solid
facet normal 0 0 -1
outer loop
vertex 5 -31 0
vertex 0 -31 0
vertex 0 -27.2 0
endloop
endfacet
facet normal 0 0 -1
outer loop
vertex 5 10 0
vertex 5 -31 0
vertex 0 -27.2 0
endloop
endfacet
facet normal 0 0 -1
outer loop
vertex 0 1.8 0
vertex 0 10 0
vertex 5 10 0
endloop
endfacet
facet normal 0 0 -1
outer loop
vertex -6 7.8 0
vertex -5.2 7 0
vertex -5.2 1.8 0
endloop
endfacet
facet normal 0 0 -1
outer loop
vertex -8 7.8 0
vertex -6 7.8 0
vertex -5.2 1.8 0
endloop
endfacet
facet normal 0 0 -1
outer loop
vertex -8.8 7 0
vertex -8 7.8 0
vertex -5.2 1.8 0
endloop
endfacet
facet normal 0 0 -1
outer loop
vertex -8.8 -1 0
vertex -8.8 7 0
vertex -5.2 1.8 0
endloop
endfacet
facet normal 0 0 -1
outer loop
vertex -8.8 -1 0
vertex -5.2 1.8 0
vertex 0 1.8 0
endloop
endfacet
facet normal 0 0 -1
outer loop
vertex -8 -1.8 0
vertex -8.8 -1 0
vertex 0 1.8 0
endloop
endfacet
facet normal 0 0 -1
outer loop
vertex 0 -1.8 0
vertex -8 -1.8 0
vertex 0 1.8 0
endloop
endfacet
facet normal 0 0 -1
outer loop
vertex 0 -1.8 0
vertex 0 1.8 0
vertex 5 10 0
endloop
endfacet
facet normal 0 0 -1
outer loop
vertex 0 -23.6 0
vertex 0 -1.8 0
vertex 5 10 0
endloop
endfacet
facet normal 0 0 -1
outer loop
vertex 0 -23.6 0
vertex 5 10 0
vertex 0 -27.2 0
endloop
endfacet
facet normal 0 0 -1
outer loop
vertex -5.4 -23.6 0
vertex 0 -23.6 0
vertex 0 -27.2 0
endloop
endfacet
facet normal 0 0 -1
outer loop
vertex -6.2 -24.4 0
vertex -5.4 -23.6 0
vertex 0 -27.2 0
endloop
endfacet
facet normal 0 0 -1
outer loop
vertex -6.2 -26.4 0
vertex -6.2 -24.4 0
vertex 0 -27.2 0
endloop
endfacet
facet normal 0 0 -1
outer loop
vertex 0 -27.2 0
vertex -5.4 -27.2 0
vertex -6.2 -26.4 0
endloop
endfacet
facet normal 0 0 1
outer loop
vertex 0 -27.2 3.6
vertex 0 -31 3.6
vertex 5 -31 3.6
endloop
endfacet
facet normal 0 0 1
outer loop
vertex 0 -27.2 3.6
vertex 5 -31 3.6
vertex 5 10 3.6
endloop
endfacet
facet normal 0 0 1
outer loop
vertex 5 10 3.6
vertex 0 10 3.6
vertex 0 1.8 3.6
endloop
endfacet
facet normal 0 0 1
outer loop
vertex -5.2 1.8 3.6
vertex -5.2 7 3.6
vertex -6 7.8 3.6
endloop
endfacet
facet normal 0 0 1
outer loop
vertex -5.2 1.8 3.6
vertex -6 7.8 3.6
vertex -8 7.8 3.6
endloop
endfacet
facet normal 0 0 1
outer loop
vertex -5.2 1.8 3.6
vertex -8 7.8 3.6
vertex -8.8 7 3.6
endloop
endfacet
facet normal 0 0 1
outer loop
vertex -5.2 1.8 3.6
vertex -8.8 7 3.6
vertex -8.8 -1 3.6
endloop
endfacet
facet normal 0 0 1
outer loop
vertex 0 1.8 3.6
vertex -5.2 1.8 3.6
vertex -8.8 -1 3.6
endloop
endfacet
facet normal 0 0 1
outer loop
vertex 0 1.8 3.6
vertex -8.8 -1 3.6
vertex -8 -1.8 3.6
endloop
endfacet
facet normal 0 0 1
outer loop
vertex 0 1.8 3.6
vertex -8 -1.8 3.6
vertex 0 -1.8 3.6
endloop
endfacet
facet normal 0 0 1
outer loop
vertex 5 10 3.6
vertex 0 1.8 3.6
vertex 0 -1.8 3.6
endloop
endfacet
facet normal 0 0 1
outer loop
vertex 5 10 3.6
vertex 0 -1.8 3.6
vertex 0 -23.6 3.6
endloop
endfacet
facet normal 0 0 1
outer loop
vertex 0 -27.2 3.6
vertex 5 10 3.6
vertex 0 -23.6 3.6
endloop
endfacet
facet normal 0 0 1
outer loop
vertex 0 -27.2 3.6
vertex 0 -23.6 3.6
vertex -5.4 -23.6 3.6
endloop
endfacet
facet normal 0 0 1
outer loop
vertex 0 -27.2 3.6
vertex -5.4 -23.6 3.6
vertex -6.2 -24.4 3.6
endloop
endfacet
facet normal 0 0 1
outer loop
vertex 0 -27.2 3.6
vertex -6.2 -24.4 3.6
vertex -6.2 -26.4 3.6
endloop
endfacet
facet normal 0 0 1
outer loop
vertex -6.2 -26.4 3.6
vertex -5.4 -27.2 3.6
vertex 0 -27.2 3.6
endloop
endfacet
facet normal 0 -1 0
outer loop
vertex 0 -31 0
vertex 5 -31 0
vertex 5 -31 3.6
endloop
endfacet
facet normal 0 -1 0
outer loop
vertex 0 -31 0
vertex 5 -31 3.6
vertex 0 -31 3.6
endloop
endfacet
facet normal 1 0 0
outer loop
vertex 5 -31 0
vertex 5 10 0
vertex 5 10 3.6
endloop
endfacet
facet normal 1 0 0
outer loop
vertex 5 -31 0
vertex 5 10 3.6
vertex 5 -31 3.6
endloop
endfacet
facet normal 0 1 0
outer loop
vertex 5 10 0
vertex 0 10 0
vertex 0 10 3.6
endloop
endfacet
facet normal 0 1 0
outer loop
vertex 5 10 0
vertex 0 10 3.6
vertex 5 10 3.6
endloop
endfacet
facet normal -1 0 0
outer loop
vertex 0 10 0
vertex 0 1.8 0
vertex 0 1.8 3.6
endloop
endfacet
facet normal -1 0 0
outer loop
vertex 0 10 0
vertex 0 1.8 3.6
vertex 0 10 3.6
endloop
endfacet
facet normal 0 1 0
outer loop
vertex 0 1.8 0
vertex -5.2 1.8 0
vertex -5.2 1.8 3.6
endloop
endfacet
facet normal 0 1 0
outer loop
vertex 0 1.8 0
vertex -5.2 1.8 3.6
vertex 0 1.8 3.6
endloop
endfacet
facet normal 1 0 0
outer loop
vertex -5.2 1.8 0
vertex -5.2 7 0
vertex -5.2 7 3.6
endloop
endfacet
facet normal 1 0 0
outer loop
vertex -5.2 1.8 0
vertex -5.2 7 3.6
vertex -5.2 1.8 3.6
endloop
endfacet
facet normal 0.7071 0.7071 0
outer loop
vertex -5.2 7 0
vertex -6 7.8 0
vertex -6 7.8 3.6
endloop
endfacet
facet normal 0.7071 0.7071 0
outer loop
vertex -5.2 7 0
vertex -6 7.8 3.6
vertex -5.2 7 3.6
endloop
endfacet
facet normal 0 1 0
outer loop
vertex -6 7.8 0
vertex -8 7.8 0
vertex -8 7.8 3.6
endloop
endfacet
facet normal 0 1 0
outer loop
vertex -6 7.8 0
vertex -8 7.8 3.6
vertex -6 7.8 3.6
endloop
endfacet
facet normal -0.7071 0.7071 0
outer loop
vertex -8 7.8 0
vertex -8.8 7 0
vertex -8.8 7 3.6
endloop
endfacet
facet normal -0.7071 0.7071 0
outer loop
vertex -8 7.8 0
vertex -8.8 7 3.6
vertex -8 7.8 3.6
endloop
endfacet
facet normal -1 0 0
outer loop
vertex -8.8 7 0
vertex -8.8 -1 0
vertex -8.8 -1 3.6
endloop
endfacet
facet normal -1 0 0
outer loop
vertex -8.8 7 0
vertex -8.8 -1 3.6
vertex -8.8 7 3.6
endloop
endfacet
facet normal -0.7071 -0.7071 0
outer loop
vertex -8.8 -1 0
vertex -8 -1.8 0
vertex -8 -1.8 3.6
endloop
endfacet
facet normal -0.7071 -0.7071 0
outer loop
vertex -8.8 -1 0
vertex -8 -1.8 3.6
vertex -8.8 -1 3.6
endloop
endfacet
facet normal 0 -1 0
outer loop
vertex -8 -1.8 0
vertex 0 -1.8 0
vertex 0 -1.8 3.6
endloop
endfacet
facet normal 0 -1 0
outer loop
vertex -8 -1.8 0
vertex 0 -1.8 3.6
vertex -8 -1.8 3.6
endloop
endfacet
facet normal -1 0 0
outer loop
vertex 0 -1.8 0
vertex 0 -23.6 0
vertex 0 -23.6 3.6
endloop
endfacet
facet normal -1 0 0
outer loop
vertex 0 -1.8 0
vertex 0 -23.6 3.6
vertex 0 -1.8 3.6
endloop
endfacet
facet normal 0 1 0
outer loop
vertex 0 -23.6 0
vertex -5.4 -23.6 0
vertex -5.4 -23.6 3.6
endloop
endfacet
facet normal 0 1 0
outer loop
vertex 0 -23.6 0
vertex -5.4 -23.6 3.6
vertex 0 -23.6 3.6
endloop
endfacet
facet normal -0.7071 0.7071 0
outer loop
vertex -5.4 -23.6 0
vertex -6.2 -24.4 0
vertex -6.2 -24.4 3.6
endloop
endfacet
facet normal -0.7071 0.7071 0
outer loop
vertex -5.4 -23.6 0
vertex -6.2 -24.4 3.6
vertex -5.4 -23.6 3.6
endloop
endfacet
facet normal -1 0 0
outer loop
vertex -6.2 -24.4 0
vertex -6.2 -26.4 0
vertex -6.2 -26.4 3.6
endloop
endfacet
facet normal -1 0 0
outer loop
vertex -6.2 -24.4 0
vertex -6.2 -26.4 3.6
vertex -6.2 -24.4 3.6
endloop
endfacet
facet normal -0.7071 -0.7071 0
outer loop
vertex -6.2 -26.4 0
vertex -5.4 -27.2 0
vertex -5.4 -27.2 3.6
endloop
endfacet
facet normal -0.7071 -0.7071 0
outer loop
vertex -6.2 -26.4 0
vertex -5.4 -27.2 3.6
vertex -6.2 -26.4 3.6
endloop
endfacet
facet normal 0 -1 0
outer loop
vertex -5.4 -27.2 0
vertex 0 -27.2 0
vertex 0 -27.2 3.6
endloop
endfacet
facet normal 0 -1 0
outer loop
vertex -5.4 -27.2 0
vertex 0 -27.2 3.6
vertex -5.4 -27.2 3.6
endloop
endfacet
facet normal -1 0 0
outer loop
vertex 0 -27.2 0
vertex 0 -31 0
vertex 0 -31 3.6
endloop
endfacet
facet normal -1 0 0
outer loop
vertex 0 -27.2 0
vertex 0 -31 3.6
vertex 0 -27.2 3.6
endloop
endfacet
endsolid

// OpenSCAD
// Fit coupon only, not a rated hanger. Side-down print orientation.
// Intended board thickness 4.8 mm; gap includes 0.4 mm clearance.
linear_extrude(height=3.6) polygon(points=[[0, -31], [5, -31], [5, 10], [0, 10], [0, 1.8], [-5.2, 1.8], [-5.2, 7.0], [-6.0, 7.8], [-8.0, 7.8], [-8.8, 7.0], [-8.8, -1.0], [-8.0, -1.8], [0, -1.8], [0, -23.6], [-5.4, -23.6], [-6.2, -24.4], [-6.2, -26.4], [-5.4, -27.2], [0, -27.2]]);
